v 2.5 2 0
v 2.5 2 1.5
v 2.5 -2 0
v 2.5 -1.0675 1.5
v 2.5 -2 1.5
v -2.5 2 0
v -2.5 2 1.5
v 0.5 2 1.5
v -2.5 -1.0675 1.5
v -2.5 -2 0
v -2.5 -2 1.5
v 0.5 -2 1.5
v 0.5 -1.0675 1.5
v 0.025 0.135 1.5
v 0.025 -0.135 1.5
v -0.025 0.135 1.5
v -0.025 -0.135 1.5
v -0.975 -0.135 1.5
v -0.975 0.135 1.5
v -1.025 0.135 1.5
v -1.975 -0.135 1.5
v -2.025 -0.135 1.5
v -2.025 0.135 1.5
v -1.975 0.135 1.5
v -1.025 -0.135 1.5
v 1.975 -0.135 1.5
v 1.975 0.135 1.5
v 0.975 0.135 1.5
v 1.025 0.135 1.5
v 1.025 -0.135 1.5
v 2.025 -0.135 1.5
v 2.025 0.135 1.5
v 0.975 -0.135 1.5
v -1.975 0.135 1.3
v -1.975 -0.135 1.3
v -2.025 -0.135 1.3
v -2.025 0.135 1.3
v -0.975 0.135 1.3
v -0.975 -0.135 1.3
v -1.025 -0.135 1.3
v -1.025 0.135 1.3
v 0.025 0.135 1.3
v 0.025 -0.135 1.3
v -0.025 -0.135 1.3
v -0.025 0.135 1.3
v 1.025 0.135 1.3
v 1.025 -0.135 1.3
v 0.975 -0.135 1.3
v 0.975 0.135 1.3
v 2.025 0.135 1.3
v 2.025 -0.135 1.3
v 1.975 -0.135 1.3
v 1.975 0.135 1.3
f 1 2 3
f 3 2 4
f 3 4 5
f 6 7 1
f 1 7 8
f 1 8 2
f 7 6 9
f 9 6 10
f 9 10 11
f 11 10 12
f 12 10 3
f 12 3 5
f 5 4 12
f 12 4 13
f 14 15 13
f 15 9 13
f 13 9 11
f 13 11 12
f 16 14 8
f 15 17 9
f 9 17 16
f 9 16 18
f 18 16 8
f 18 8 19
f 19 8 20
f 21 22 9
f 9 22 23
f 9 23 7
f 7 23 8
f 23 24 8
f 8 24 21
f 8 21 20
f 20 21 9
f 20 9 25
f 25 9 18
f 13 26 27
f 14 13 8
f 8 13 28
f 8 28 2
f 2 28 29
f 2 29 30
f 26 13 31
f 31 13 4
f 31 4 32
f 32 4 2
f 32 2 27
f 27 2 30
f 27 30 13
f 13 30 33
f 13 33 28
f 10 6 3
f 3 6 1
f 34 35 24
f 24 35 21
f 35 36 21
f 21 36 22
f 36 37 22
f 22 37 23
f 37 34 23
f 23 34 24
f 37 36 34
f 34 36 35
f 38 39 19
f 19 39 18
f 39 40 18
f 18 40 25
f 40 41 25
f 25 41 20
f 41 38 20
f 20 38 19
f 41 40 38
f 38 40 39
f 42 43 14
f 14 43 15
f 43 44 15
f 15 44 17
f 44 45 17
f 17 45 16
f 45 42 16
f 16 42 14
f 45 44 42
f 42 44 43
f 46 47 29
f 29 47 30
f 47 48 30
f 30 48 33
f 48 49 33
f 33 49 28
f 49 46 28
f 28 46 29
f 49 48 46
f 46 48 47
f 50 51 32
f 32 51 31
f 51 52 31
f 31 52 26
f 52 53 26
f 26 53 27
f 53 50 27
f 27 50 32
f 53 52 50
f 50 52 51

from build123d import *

# Parameters (mm, degrees)
SKIZZE1_W                       = 5
SKIZZE1_H                       = 4
AUFSATZ_LINEAR_AUSTRAGEN1_DEPTH = 1.5
SKIZZE2_W                       = 0.05
SKIZZE2_H                       = 0.27
SCHNITT_LINEAR_AUSTRAGEN1_DEPTH = 0.2
LINEARES_MUSTER1_COUNT          = 5
LINEARES_MUSTER1_PITCH          = 1


with BuildPart() as part:
    # Skizze1 → Aufsatz-Linear austragen1 (new body)
    with BuildSketch(Plane.XY):
        Rectangle(SKIZZE1_W, SKIZZE1_H)
    extrude(amount=AUFSATZ_LINEAR_AUSTRAGEN1_DEPTH)

    # Skizze2 → Schnitt-Linear austragen1 (cut)
    with BuildSketch(Plane.XY.offset(1.5)):
        with Locations((-2, 0)):
            Rectangle(SKIZZE2_W, SKIZZE2_H)
    schnitt_linear_austragen1 = extrude(amount=-SCHNITT_LINEAR_AUSTRAGEN1_DEPTH, mode=Mode.SUBTRACT)

    # Lineares Muster1: Schnitt-Linear austragen1 ×5
    with Locations(*[(i * LINEARES_MUSTER1_PITCH, 0, 0) for i in range(1, LINEARES_MUSTER1_COUNT)]):
        add(schnitt_linear_austragen1, mode=Mode.SUBTRACT)


solid = part.part
